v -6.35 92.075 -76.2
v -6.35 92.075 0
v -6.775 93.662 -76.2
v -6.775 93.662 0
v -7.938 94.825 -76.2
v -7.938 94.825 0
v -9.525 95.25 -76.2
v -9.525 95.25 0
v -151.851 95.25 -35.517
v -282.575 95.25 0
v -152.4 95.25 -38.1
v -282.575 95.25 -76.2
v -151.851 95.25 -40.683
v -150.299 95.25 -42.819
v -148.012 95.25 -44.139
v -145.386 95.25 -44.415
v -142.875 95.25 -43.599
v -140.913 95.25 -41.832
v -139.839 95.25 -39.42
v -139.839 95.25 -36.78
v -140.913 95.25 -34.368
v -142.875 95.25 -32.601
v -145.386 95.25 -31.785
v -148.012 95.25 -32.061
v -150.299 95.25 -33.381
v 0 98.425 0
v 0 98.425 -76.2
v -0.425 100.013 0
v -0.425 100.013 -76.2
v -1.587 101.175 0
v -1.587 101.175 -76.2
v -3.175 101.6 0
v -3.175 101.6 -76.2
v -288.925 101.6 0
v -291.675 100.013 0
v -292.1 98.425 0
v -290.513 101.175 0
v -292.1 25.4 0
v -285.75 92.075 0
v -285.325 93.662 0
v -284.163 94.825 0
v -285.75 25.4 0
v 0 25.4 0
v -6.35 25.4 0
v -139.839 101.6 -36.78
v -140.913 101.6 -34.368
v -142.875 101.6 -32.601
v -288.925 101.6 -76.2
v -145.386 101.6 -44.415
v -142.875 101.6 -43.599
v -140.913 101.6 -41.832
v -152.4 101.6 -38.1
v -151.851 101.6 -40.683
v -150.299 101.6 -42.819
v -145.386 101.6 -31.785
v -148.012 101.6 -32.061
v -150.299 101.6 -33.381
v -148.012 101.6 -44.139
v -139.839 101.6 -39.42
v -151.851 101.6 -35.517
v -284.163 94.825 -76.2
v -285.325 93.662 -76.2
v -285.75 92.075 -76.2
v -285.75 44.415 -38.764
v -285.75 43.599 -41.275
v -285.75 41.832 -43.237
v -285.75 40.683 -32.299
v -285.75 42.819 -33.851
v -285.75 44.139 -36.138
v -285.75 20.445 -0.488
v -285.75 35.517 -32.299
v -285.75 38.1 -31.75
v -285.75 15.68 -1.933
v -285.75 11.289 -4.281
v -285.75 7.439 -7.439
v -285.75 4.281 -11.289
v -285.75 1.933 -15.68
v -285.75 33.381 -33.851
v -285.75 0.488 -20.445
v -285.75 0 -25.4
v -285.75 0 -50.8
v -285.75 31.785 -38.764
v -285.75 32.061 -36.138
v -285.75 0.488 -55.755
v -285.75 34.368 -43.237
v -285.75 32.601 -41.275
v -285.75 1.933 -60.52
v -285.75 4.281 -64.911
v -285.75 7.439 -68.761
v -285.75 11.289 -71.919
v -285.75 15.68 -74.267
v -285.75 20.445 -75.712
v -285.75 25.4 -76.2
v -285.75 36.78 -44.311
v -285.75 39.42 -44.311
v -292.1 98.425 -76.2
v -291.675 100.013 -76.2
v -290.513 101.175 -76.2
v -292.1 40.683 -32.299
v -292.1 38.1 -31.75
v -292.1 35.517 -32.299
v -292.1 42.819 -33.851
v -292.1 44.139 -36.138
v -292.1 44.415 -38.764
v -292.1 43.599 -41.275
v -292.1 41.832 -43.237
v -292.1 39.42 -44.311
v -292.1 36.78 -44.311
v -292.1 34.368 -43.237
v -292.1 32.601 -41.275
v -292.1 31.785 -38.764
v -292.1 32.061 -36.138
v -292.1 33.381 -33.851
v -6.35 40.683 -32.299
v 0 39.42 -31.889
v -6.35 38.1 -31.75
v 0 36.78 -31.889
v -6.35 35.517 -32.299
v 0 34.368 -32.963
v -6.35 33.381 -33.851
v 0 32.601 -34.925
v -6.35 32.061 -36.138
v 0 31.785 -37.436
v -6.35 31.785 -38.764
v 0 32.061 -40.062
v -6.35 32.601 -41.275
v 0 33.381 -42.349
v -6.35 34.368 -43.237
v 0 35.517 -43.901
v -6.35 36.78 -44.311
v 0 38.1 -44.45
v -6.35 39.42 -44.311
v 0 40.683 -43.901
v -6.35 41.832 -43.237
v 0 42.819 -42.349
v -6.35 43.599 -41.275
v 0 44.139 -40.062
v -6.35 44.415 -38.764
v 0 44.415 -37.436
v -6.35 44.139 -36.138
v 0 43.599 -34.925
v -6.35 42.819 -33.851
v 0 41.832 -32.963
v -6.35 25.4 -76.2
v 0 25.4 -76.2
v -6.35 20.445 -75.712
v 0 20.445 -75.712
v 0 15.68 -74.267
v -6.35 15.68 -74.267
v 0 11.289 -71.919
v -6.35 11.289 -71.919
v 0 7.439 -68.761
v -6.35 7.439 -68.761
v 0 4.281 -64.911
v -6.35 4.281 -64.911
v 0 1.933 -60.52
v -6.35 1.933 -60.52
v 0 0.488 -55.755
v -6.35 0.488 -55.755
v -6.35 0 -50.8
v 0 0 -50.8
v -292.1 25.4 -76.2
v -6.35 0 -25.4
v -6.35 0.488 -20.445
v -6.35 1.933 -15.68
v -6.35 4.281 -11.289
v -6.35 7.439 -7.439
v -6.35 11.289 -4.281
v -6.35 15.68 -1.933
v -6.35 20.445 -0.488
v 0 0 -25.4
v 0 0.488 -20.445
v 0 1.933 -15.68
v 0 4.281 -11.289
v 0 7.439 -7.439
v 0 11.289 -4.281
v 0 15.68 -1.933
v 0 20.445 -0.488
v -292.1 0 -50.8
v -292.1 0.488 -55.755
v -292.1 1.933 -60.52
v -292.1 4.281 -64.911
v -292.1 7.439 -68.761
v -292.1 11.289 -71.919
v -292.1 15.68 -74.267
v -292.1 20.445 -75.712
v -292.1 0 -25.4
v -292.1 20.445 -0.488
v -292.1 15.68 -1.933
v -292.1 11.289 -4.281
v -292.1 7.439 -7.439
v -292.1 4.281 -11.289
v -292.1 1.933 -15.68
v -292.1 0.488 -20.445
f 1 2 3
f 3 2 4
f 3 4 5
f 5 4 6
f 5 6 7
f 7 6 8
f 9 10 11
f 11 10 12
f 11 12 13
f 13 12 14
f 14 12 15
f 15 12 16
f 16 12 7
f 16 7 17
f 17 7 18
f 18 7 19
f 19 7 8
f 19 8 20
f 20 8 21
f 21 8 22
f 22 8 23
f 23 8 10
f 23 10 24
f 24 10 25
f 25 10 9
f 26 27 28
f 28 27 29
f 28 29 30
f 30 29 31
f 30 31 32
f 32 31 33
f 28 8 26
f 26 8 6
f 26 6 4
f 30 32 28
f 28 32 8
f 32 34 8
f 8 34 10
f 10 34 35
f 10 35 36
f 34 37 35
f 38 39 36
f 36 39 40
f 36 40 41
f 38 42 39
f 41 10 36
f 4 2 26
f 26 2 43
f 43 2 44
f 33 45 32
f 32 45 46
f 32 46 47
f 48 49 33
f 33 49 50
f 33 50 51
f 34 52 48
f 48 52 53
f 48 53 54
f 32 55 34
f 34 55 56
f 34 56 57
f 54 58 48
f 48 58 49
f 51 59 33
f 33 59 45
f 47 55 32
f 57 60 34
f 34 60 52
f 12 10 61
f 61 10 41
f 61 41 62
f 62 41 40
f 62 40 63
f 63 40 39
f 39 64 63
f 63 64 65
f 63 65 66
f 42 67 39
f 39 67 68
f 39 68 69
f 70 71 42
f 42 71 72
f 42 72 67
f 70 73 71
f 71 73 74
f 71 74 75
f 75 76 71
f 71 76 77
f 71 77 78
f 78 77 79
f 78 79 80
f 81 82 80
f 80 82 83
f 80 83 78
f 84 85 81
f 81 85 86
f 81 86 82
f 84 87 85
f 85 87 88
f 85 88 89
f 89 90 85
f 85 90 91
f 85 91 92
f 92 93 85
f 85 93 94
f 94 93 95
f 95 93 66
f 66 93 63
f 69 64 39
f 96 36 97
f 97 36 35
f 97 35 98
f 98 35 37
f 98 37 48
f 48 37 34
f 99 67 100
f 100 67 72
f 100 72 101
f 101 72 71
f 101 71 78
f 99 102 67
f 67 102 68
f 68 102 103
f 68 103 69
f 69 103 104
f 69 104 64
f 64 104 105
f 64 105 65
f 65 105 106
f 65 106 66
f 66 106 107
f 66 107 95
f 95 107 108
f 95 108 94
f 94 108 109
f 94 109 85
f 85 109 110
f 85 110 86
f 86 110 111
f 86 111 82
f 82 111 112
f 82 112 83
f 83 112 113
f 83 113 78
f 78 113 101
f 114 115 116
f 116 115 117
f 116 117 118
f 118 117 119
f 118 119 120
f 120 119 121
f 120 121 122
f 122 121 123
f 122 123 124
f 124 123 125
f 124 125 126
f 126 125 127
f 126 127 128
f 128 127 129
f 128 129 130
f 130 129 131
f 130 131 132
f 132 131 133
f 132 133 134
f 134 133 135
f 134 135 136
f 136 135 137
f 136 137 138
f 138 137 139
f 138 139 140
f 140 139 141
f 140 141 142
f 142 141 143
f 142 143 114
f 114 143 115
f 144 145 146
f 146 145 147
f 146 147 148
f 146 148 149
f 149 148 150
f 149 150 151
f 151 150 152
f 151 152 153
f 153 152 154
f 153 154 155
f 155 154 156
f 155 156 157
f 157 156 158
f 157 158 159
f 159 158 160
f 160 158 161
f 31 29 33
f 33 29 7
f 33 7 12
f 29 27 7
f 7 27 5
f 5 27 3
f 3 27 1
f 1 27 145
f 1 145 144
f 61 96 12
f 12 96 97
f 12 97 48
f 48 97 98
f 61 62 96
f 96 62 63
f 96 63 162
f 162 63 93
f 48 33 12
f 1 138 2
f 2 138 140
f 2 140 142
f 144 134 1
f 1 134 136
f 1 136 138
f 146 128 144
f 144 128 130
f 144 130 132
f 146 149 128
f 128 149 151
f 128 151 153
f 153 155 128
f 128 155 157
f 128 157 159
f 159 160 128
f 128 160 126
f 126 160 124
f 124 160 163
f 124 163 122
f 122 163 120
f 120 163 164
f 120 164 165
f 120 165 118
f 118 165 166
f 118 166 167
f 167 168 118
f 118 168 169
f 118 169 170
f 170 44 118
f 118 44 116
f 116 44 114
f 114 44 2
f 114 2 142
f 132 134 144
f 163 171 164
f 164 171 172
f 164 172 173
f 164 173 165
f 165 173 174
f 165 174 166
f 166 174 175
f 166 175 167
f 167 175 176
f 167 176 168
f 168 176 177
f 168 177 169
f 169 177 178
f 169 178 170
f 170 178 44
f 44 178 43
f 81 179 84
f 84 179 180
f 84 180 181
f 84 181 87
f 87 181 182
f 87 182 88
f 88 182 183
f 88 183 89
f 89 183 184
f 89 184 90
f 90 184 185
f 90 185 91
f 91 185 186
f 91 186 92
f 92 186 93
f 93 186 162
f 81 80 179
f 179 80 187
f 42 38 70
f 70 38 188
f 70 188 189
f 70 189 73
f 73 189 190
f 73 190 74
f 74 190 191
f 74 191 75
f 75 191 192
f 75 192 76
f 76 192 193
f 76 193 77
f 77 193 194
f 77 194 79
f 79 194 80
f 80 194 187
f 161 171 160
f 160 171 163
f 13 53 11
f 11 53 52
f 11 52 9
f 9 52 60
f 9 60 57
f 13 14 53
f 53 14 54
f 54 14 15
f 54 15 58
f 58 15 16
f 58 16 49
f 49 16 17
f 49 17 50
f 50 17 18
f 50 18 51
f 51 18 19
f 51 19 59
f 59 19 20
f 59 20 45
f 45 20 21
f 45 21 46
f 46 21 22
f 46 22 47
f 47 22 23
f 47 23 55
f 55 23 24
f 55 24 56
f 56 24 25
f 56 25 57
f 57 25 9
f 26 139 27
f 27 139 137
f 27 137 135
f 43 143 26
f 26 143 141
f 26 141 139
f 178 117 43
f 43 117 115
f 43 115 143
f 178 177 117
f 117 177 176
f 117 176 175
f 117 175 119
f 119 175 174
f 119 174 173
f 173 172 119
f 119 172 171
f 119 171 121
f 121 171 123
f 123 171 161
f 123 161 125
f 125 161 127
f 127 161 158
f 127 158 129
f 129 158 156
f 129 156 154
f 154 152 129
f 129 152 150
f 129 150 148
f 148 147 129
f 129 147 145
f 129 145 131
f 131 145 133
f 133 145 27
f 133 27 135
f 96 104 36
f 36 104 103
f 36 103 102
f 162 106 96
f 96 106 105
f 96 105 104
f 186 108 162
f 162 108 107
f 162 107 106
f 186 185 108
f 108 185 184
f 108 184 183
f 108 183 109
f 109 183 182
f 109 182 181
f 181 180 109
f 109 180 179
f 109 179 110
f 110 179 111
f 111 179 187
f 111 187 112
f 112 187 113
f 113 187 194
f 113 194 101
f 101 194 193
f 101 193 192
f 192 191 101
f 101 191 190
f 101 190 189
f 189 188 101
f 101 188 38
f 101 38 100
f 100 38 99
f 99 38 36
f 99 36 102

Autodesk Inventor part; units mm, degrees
ref_plane "YZ Plane" through (0, 0, 0) normal (1, 0, 0) x (0, 1, 0)
ref_plane "XZ Plane" through (0, 0, 0) normal (0, 1, 0) x (-1, 0, 0)
ref_plane "XY Plane" through (0, 0, 0) normal (0, 0, 1) x (1, 0, 0)
sketch "Sketch1" plane through (0, 0, 0) normal (0, 1, 0) x (-1, 0, 0)
  line L0 (0, 0) -> (292.1, 0)
  line L1 (292.1, 0) -> (292.1, -76.2)
  line L2 (292.1, -76.2) -> (0, -76.2)
  line L3 (0, -76.2) -> (0, 0)
  circle A0 centre (146.05, -38.1) radius 6.35
  point P0 (292.1, -38.1)
  dimension "d0" = 292.1
  dimension "d1" = 76.2
  dimension "d27" = 12.7
  dimension "d28" = 38.1
  dimension "d45" = 146.05
  dimension "d46" = 146.05
extrude "Extrusion4" add sketch "Sketch1" along normal blind 101.6
sketch "Sketch4" plane through (-292.1, 0, 0) normal (0, 0, 1) x (1, 0, 0)
  line L0 (285.75, -50.8) -> (6.35, -50.8)
  line L1 (6.35, -50.8) -> (6.35, 95.25)
  line L2 (6.35, 95.25) -> (285.75, 95.25)
  line L3 (285.75, 95.25) -> (285.75, -50.8)
  line L4 (0, 101.6) -> (292.1, 101.6) projected
  line L5 (292.1, 0) -> (292.1, 101.6) projected
  line L6 (0, 0) -> (0, 101.6) projected
  point P0 (0, 50.8)
  dimension "d32" = 6.35
  dimension "d33" = 6.35
  dimension "d34" = 6.35
  dimension "d43" = 146.05
extrude "Extrusion5" cut sketch "Sketch4" against normal blind 119.0625
fillet "Fillet4" radius 25.4 4 edges at (-288.925, 0, 0) (-288.925, 0, -76.2) (-3.175, 0, 0) (-3.175, 0, -76.2)
sketch "Sketch5" plane through (0, 101.6, 0) normal (1, 0, 0) x (0, 0, -1)
  circle A0 centre (38.1, -63.5) radius 6.35
  line L0 (0, 0) -> (76.2, 0) projected
  line L1 (0, -76.2) -> (0, 0) projected
  point P0 (0, -101.6)
  dimension "d38" = 12.7
  dimension "d39" = 63.5
  dimension "d40" = 38.1
extrude "Extrusion6" cut sketch "Sketch5" against normal blind 330.2
fillet "Fillet5" radius 3.175 4 edges at (-292.1, 101.6, -38.1) (-285.75, 95.25, -38.1) (0, 101.6, -38.1) (-6.35, 95.25, -38.1)
properties part number "Bracket" material "Aluminum 6061"
